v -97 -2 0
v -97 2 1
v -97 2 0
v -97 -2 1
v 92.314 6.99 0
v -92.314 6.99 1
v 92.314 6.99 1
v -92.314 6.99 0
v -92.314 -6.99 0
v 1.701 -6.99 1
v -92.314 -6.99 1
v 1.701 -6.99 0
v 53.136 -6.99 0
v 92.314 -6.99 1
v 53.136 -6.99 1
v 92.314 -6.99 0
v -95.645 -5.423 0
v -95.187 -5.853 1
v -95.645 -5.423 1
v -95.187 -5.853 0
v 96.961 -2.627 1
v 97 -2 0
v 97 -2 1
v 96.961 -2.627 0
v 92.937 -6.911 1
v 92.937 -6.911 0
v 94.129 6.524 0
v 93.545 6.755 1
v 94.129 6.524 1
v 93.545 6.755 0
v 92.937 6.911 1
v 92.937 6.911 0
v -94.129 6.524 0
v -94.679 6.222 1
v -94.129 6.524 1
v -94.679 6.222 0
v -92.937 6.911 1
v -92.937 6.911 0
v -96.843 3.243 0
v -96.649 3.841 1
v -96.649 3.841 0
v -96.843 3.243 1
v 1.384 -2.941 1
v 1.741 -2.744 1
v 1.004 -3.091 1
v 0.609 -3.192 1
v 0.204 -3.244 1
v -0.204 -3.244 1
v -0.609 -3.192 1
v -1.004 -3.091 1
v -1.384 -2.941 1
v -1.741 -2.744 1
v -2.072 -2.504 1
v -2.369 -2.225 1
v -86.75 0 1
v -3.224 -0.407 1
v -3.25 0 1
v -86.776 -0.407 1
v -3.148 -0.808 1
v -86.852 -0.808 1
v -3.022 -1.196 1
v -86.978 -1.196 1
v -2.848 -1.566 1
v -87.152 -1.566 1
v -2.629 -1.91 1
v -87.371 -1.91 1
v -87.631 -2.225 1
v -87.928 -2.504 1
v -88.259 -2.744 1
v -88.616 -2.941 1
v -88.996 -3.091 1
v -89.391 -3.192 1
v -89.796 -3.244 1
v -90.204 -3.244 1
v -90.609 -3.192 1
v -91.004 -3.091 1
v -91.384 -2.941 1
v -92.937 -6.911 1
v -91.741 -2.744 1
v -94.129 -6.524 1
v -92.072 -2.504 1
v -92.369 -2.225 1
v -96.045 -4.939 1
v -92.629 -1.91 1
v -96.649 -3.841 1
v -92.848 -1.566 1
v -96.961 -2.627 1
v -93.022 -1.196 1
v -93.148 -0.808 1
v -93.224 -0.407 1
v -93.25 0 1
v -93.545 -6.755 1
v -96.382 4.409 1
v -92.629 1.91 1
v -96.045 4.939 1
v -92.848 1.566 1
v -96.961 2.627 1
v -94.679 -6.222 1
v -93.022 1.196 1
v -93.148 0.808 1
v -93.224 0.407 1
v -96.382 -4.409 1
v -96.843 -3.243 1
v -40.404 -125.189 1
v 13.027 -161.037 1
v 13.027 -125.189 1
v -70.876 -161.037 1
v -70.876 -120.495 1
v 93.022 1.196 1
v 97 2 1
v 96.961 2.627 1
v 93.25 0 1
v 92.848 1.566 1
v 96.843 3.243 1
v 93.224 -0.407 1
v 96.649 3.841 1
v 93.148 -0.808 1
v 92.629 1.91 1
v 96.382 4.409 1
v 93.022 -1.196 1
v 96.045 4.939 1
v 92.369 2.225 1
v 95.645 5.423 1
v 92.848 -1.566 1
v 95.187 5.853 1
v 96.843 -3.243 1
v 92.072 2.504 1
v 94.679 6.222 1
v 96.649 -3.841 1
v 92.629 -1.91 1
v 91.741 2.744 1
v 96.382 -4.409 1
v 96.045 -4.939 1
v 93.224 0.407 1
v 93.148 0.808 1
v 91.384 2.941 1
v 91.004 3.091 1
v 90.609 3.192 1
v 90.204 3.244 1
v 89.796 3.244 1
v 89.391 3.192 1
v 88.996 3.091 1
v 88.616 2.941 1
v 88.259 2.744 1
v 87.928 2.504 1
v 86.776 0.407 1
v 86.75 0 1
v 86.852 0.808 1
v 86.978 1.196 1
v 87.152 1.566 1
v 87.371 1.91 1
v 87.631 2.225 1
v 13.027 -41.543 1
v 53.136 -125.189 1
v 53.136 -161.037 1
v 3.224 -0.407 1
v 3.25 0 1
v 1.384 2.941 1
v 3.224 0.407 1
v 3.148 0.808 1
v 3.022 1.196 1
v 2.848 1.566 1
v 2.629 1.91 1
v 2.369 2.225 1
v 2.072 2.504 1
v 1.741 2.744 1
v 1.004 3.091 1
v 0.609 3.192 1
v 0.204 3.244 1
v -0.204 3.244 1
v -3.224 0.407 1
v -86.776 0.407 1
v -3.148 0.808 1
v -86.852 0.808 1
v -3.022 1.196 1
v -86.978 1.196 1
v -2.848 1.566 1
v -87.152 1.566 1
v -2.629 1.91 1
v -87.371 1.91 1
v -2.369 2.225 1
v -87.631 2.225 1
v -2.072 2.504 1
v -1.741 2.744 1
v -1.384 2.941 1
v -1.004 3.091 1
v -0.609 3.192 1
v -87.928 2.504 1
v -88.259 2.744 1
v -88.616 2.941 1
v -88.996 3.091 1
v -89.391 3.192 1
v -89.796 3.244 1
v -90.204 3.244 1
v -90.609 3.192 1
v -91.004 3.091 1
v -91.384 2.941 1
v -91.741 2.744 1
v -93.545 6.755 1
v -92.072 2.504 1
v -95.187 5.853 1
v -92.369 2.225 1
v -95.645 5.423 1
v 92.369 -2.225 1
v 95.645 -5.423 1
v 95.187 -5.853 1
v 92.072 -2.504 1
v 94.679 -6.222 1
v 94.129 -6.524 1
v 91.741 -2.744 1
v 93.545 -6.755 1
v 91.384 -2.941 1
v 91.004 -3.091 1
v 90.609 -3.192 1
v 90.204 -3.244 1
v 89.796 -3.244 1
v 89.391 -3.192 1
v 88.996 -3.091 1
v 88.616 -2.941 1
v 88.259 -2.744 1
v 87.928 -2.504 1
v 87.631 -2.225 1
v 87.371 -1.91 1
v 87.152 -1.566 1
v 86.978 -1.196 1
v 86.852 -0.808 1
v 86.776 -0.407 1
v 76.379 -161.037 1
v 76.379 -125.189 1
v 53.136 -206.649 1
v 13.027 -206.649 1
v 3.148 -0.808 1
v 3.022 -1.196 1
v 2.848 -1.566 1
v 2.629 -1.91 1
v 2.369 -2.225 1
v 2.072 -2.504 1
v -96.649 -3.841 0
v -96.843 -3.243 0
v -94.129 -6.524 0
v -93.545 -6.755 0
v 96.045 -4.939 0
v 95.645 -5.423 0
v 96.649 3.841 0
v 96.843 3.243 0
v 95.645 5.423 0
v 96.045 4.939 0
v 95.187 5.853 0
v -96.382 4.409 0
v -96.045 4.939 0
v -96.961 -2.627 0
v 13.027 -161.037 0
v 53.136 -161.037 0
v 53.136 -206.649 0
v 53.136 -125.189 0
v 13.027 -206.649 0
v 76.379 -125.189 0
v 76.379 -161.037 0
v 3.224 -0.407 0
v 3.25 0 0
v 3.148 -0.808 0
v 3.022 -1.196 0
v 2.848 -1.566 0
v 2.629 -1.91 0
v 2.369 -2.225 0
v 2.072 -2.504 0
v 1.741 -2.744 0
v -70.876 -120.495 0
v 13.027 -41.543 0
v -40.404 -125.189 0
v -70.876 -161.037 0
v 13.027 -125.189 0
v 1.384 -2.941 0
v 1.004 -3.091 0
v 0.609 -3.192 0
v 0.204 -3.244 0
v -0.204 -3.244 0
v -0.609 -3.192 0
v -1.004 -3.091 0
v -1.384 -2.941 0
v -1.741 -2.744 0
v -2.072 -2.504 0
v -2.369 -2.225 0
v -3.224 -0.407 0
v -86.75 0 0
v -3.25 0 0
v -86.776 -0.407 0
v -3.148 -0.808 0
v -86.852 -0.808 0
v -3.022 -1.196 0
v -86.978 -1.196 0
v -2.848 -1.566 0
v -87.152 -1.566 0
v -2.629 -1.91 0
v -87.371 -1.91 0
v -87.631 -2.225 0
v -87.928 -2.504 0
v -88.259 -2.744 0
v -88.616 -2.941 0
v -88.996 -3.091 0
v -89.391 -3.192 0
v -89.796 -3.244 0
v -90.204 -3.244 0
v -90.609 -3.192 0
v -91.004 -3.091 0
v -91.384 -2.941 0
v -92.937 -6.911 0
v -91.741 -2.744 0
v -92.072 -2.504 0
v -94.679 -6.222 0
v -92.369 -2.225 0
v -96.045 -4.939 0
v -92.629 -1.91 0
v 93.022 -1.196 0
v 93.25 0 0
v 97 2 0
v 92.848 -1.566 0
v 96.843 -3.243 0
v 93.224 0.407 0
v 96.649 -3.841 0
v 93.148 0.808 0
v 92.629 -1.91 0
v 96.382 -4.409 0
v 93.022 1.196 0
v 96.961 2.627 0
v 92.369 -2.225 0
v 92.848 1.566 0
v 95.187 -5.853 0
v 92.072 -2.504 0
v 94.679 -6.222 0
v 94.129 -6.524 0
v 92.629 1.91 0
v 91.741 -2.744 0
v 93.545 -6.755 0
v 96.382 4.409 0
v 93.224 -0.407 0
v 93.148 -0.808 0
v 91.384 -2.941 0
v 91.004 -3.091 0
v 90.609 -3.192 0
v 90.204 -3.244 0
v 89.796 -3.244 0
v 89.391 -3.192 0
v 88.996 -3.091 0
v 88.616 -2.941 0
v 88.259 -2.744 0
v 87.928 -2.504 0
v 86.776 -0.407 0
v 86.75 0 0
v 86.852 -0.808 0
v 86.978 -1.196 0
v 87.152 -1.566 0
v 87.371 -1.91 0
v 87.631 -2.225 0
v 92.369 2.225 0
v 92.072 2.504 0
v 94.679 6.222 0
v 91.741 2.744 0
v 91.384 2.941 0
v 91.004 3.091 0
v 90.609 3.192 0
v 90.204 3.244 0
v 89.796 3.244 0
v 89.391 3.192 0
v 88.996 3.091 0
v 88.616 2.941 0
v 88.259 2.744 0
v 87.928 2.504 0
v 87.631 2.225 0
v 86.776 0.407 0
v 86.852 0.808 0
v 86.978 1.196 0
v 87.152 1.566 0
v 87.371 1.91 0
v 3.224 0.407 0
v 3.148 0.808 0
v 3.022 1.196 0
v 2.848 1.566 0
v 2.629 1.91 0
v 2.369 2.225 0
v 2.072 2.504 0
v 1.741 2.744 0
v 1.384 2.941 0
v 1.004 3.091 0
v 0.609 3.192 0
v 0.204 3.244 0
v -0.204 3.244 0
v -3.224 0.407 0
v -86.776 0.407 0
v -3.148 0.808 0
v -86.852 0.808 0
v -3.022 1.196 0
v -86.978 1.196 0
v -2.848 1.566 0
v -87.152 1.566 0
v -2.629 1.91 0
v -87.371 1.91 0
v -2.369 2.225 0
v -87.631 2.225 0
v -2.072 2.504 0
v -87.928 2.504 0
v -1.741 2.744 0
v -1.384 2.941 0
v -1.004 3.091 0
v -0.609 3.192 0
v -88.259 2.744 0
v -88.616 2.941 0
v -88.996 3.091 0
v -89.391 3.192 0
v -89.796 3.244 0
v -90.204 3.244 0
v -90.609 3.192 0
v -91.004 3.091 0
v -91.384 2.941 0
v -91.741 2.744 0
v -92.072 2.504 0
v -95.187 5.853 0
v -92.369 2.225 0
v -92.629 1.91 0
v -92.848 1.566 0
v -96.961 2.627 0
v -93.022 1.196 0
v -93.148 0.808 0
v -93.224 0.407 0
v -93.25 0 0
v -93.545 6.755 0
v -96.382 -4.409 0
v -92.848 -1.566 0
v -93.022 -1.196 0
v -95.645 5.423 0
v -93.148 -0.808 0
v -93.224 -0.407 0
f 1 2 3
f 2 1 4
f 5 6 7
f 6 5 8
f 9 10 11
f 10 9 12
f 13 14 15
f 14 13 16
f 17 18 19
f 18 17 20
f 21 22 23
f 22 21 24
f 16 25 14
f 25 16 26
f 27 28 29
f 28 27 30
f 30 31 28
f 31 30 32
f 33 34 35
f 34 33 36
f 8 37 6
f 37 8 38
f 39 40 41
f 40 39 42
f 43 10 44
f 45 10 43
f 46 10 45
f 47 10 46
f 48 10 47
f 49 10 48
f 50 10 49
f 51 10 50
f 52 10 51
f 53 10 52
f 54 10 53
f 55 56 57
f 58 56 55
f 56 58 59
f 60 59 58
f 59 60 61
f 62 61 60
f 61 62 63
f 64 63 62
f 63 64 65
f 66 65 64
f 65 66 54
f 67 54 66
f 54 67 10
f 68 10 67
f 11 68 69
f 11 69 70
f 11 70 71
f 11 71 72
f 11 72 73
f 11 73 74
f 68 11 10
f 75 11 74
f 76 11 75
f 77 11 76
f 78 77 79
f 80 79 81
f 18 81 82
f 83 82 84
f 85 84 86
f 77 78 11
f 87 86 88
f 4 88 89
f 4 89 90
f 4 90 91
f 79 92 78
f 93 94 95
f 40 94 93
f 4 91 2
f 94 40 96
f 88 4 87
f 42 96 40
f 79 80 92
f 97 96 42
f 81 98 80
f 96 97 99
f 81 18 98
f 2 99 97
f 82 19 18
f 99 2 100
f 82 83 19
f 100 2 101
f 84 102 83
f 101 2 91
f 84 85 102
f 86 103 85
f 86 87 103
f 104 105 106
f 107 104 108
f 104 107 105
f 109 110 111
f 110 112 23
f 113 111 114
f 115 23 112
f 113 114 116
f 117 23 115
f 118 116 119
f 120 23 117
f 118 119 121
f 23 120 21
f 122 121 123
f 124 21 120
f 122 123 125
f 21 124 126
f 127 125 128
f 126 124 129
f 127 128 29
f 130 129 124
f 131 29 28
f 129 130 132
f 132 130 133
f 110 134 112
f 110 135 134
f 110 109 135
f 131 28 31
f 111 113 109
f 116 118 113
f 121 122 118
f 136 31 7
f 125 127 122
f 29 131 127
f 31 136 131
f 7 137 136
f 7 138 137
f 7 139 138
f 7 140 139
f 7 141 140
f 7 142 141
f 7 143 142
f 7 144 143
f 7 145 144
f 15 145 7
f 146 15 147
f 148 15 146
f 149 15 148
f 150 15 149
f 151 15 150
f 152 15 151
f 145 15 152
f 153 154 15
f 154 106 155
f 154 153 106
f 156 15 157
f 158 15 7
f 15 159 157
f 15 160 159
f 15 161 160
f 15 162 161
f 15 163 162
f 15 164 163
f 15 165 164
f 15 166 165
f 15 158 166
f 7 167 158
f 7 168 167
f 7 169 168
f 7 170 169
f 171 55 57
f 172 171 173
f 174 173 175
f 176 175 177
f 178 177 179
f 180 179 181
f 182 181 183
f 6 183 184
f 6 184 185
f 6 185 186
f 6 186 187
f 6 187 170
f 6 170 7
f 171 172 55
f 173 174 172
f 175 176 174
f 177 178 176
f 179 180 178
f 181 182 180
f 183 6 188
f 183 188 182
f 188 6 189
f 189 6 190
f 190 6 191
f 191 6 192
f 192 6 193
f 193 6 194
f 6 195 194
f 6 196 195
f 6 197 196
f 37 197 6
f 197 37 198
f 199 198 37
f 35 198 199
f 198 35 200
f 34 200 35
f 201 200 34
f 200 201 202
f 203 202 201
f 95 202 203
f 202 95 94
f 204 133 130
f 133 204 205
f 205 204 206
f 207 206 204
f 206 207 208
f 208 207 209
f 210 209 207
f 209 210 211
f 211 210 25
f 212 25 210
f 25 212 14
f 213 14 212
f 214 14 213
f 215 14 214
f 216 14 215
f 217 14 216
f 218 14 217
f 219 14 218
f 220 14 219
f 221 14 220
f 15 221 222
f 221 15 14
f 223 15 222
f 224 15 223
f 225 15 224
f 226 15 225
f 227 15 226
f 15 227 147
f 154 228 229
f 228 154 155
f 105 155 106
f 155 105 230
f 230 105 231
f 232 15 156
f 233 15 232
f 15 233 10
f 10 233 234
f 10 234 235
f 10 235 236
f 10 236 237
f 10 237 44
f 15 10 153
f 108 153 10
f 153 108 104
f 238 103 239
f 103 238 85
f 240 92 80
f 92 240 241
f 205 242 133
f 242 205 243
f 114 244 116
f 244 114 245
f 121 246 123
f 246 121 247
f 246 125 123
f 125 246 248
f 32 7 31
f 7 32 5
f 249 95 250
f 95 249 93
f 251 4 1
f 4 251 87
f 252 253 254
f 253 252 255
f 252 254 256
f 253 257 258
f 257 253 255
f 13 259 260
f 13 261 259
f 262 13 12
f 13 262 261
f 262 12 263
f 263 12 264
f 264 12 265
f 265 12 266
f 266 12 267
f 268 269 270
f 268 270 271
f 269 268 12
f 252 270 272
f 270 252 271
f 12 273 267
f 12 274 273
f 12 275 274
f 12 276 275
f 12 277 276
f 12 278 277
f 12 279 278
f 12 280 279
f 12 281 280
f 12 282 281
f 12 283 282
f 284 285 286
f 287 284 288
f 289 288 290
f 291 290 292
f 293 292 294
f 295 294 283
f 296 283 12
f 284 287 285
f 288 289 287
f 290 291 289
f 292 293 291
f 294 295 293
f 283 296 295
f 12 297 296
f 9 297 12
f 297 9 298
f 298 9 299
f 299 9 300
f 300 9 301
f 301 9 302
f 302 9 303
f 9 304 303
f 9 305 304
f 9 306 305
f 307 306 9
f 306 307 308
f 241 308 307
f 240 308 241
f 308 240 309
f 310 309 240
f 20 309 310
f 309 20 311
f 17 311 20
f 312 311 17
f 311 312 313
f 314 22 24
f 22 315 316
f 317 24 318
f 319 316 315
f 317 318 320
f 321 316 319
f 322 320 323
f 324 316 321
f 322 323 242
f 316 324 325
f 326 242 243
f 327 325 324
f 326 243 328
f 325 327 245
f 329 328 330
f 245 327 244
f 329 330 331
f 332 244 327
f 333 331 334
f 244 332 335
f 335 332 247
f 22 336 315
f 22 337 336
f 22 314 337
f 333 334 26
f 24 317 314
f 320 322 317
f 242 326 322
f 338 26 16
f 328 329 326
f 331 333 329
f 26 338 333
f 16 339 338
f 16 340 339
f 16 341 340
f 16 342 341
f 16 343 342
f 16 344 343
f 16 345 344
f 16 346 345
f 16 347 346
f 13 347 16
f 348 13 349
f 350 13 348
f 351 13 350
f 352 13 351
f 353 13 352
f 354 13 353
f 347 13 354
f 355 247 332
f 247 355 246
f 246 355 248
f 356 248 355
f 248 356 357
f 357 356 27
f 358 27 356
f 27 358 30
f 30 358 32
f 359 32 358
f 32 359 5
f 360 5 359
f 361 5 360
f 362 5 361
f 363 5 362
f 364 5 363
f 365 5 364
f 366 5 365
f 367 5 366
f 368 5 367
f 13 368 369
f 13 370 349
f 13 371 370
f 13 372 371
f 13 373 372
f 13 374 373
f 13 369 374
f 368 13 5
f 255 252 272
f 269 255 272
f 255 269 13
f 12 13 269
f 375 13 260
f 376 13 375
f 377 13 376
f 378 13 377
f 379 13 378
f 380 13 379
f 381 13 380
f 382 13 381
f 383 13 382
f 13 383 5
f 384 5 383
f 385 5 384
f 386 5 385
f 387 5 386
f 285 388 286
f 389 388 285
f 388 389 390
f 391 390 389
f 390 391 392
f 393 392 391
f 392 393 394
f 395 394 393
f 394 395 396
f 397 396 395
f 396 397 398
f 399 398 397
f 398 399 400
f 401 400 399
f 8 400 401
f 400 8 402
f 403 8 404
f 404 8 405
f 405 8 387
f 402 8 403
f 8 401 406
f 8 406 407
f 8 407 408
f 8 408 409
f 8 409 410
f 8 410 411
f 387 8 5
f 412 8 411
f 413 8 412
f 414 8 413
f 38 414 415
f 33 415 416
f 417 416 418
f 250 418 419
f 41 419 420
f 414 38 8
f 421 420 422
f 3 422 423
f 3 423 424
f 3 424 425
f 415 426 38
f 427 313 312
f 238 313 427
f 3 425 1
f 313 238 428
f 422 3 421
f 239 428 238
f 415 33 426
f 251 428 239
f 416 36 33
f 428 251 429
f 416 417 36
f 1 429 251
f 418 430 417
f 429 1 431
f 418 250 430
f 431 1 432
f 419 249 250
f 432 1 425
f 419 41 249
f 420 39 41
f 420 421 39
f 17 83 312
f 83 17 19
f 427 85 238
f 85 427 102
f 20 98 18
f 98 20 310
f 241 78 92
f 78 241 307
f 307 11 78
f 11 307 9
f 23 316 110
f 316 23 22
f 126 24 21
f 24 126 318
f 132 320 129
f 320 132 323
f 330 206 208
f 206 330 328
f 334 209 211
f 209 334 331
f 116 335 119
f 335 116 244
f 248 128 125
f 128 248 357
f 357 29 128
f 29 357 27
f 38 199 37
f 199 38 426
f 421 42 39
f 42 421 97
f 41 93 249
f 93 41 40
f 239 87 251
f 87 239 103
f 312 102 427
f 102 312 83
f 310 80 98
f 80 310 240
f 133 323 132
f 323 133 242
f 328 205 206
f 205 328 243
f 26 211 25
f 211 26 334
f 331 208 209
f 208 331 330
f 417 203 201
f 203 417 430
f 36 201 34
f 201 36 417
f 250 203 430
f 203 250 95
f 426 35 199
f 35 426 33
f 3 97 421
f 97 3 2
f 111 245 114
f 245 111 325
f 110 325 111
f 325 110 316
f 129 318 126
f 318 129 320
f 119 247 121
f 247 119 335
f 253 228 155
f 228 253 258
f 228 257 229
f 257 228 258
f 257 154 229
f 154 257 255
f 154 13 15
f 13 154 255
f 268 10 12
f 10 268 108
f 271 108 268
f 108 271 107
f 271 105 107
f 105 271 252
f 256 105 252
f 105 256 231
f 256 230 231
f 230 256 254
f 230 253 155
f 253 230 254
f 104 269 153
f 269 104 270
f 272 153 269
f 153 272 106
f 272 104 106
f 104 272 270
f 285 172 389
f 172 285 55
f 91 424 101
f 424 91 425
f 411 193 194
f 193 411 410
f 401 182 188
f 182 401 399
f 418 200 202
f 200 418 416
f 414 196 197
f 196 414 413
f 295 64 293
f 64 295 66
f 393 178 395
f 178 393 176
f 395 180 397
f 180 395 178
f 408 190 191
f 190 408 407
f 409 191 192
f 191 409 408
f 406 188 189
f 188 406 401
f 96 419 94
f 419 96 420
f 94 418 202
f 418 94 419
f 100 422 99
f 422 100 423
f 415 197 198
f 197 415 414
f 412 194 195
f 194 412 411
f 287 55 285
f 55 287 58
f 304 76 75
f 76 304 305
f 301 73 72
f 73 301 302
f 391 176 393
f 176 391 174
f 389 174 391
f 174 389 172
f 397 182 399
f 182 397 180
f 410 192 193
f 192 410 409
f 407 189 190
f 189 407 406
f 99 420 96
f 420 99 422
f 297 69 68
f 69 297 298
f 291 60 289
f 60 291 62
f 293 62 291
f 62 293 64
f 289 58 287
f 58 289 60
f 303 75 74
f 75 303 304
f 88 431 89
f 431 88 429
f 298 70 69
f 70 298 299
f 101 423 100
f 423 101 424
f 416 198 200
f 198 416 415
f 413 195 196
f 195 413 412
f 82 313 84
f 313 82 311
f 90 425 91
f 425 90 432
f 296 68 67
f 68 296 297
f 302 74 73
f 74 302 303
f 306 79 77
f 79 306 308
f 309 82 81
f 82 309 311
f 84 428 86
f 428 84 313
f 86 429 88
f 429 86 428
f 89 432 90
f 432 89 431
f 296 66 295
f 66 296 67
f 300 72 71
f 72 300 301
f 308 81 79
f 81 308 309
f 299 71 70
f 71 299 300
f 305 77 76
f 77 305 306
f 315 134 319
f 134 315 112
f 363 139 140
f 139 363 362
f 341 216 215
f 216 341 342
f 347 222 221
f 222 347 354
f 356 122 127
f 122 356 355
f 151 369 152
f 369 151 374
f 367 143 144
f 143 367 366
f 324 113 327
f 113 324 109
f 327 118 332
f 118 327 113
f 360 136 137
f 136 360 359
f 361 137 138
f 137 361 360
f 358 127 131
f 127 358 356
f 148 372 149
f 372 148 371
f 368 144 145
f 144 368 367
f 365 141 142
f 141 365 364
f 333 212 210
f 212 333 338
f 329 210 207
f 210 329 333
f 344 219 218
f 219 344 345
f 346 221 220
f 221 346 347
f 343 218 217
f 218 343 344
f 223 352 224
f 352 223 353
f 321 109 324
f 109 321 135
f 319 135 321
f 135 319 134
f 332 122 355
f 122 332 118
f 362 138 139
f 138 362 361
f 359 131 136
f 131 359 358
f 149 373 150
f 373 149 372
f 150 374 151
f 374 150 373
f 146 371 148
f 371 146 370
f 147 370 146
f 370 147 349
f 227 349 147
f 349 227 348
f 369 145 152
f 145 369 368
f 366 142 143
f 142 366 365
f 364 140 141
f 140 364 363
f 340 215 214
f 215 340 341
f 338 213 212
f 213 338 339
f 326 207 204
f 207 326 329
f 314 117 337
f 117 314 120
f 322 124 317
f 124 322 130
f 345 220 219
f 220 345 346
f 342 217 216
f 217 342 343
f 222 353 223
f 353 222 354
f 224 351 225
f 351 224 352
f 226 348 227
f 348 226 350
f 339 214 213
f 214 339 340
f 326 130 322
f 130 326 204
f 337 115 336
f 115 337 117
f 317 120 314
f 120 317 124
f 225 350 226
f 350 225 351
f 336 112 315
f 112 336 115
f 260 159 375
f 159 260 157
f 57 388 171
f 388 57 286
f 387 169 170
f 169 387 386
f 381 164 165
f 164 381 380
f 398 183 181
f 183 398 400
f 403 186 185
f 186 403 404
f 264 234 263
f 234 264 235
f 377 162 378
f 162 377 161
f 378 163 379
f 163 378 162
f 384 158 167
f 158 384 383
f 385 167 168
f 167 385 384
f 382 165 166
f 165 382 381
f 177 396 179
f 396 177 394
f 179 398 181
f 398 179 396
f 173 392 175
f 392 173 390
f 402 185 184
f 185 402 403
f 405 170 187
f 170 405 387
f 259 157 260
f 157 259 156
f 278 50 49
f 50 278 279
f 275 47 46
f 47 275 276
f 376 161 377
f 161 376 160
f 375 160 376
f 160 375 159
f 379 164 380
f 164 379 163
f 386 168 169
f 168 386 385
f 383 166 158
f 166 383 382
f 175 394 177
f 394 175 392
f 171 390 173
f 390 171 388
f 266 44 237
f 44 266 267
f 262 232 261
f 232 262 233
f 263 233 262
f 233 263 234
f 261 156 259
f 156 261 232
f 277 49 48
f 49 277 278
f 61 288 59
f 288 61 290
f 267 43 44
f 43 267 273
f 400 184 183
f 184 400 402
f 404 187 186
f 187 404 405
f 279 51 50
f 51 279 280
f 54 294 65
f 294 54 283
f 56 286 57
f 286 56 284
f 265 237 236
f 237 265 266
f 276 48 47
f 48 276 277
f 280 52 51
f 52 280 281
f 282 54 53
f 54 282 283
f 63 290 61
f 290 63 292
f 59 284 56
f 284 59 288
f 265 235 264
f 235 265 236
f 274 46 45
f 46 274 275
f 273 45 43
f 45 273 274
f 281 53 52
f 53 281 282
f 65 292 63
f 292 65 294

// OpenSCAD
$fn = 50;


difference() {
	union() {
		translate(v = [0, 0, 0]) {
			rotate(a = [0, 0, 0]) {
				hull() {
					translate(v = [-92.0000000000, 2.0000000000, 0]) {
						rotate(a = [0, 0, 0]) {
							translate(v = [0, 0, 0]) {
								rotate(a = [0, 0, 0]) {
									cylinder(h = 1, r = 5);
								}
							}
						}
					}
					translate(v = [92.0000000000, 2.0000000000, 0]) {
						rotate(a = [0, 0, 0]) {
							translate(v = [0, 0, 0]) {
								rotate(a = [0, 0, 0]) {
									cylinder(h = 1, r = 5);
								}
							}
						}
					}
					translate(v = [-92.0000000000, -2.0000000000, 0]) {
						rotate(a = [0, 0, 0]) {
							translate(v = [0, 0, 0]) {
								rotate(a = [0, 0, 0]) {
									cylinder(h = 1, r = 5);
								}
							}
						}
					}
					translate(v = [92.0000000000, -2.0000000000, 0]) {
						rotate(a = [0, 0, 0]) {
							translate(v = [0, 0, 0]) {
								rotate(a = [0, 0, 0]) {
									cylinder(h = 1, r = 5);
								}
							}
						}
					}
				}
			}
		}
		translate(v = [0, 0, 0]) {
			rotate(a = [0, 0, 0]) {
				linear_extrude(height = 1) {
					text(font = "DejaVu Sans Mono:style=Bold", halign = "center", size = 209.0000000000, text = "4", valign = "top");
				}
			}
		}
	}
	union() {
		translate(v = [-90.0000000000, 0.0000000000, -125.0000000000]) {
			rotate(a = [0, 0, 0]) {
				cylinder(h = 250, r = 3.2500000000);
			}
		}
		translate(v = [90.0000000000, 0.0000000000, -125.0000000000]) {
			rotate(a = [0, 0, 0]) {
				cylinder(h = 250, r = 3.2500000000);
			}
		}
		translate(v = [90.0000000000, 0.0000000000, -125.0000000000]) {
			rotate(a = [0, 0, 0]) {
				cylinder(h = 250, r = 3.2500000000);
			}
		}
		translate(v = [0, 0, -125.0000000000]) {
			rotate(a = [0, 0, 0]) {
				cylinder(h = 250, r = 3.2500000000);
			}
		}
	}
}
